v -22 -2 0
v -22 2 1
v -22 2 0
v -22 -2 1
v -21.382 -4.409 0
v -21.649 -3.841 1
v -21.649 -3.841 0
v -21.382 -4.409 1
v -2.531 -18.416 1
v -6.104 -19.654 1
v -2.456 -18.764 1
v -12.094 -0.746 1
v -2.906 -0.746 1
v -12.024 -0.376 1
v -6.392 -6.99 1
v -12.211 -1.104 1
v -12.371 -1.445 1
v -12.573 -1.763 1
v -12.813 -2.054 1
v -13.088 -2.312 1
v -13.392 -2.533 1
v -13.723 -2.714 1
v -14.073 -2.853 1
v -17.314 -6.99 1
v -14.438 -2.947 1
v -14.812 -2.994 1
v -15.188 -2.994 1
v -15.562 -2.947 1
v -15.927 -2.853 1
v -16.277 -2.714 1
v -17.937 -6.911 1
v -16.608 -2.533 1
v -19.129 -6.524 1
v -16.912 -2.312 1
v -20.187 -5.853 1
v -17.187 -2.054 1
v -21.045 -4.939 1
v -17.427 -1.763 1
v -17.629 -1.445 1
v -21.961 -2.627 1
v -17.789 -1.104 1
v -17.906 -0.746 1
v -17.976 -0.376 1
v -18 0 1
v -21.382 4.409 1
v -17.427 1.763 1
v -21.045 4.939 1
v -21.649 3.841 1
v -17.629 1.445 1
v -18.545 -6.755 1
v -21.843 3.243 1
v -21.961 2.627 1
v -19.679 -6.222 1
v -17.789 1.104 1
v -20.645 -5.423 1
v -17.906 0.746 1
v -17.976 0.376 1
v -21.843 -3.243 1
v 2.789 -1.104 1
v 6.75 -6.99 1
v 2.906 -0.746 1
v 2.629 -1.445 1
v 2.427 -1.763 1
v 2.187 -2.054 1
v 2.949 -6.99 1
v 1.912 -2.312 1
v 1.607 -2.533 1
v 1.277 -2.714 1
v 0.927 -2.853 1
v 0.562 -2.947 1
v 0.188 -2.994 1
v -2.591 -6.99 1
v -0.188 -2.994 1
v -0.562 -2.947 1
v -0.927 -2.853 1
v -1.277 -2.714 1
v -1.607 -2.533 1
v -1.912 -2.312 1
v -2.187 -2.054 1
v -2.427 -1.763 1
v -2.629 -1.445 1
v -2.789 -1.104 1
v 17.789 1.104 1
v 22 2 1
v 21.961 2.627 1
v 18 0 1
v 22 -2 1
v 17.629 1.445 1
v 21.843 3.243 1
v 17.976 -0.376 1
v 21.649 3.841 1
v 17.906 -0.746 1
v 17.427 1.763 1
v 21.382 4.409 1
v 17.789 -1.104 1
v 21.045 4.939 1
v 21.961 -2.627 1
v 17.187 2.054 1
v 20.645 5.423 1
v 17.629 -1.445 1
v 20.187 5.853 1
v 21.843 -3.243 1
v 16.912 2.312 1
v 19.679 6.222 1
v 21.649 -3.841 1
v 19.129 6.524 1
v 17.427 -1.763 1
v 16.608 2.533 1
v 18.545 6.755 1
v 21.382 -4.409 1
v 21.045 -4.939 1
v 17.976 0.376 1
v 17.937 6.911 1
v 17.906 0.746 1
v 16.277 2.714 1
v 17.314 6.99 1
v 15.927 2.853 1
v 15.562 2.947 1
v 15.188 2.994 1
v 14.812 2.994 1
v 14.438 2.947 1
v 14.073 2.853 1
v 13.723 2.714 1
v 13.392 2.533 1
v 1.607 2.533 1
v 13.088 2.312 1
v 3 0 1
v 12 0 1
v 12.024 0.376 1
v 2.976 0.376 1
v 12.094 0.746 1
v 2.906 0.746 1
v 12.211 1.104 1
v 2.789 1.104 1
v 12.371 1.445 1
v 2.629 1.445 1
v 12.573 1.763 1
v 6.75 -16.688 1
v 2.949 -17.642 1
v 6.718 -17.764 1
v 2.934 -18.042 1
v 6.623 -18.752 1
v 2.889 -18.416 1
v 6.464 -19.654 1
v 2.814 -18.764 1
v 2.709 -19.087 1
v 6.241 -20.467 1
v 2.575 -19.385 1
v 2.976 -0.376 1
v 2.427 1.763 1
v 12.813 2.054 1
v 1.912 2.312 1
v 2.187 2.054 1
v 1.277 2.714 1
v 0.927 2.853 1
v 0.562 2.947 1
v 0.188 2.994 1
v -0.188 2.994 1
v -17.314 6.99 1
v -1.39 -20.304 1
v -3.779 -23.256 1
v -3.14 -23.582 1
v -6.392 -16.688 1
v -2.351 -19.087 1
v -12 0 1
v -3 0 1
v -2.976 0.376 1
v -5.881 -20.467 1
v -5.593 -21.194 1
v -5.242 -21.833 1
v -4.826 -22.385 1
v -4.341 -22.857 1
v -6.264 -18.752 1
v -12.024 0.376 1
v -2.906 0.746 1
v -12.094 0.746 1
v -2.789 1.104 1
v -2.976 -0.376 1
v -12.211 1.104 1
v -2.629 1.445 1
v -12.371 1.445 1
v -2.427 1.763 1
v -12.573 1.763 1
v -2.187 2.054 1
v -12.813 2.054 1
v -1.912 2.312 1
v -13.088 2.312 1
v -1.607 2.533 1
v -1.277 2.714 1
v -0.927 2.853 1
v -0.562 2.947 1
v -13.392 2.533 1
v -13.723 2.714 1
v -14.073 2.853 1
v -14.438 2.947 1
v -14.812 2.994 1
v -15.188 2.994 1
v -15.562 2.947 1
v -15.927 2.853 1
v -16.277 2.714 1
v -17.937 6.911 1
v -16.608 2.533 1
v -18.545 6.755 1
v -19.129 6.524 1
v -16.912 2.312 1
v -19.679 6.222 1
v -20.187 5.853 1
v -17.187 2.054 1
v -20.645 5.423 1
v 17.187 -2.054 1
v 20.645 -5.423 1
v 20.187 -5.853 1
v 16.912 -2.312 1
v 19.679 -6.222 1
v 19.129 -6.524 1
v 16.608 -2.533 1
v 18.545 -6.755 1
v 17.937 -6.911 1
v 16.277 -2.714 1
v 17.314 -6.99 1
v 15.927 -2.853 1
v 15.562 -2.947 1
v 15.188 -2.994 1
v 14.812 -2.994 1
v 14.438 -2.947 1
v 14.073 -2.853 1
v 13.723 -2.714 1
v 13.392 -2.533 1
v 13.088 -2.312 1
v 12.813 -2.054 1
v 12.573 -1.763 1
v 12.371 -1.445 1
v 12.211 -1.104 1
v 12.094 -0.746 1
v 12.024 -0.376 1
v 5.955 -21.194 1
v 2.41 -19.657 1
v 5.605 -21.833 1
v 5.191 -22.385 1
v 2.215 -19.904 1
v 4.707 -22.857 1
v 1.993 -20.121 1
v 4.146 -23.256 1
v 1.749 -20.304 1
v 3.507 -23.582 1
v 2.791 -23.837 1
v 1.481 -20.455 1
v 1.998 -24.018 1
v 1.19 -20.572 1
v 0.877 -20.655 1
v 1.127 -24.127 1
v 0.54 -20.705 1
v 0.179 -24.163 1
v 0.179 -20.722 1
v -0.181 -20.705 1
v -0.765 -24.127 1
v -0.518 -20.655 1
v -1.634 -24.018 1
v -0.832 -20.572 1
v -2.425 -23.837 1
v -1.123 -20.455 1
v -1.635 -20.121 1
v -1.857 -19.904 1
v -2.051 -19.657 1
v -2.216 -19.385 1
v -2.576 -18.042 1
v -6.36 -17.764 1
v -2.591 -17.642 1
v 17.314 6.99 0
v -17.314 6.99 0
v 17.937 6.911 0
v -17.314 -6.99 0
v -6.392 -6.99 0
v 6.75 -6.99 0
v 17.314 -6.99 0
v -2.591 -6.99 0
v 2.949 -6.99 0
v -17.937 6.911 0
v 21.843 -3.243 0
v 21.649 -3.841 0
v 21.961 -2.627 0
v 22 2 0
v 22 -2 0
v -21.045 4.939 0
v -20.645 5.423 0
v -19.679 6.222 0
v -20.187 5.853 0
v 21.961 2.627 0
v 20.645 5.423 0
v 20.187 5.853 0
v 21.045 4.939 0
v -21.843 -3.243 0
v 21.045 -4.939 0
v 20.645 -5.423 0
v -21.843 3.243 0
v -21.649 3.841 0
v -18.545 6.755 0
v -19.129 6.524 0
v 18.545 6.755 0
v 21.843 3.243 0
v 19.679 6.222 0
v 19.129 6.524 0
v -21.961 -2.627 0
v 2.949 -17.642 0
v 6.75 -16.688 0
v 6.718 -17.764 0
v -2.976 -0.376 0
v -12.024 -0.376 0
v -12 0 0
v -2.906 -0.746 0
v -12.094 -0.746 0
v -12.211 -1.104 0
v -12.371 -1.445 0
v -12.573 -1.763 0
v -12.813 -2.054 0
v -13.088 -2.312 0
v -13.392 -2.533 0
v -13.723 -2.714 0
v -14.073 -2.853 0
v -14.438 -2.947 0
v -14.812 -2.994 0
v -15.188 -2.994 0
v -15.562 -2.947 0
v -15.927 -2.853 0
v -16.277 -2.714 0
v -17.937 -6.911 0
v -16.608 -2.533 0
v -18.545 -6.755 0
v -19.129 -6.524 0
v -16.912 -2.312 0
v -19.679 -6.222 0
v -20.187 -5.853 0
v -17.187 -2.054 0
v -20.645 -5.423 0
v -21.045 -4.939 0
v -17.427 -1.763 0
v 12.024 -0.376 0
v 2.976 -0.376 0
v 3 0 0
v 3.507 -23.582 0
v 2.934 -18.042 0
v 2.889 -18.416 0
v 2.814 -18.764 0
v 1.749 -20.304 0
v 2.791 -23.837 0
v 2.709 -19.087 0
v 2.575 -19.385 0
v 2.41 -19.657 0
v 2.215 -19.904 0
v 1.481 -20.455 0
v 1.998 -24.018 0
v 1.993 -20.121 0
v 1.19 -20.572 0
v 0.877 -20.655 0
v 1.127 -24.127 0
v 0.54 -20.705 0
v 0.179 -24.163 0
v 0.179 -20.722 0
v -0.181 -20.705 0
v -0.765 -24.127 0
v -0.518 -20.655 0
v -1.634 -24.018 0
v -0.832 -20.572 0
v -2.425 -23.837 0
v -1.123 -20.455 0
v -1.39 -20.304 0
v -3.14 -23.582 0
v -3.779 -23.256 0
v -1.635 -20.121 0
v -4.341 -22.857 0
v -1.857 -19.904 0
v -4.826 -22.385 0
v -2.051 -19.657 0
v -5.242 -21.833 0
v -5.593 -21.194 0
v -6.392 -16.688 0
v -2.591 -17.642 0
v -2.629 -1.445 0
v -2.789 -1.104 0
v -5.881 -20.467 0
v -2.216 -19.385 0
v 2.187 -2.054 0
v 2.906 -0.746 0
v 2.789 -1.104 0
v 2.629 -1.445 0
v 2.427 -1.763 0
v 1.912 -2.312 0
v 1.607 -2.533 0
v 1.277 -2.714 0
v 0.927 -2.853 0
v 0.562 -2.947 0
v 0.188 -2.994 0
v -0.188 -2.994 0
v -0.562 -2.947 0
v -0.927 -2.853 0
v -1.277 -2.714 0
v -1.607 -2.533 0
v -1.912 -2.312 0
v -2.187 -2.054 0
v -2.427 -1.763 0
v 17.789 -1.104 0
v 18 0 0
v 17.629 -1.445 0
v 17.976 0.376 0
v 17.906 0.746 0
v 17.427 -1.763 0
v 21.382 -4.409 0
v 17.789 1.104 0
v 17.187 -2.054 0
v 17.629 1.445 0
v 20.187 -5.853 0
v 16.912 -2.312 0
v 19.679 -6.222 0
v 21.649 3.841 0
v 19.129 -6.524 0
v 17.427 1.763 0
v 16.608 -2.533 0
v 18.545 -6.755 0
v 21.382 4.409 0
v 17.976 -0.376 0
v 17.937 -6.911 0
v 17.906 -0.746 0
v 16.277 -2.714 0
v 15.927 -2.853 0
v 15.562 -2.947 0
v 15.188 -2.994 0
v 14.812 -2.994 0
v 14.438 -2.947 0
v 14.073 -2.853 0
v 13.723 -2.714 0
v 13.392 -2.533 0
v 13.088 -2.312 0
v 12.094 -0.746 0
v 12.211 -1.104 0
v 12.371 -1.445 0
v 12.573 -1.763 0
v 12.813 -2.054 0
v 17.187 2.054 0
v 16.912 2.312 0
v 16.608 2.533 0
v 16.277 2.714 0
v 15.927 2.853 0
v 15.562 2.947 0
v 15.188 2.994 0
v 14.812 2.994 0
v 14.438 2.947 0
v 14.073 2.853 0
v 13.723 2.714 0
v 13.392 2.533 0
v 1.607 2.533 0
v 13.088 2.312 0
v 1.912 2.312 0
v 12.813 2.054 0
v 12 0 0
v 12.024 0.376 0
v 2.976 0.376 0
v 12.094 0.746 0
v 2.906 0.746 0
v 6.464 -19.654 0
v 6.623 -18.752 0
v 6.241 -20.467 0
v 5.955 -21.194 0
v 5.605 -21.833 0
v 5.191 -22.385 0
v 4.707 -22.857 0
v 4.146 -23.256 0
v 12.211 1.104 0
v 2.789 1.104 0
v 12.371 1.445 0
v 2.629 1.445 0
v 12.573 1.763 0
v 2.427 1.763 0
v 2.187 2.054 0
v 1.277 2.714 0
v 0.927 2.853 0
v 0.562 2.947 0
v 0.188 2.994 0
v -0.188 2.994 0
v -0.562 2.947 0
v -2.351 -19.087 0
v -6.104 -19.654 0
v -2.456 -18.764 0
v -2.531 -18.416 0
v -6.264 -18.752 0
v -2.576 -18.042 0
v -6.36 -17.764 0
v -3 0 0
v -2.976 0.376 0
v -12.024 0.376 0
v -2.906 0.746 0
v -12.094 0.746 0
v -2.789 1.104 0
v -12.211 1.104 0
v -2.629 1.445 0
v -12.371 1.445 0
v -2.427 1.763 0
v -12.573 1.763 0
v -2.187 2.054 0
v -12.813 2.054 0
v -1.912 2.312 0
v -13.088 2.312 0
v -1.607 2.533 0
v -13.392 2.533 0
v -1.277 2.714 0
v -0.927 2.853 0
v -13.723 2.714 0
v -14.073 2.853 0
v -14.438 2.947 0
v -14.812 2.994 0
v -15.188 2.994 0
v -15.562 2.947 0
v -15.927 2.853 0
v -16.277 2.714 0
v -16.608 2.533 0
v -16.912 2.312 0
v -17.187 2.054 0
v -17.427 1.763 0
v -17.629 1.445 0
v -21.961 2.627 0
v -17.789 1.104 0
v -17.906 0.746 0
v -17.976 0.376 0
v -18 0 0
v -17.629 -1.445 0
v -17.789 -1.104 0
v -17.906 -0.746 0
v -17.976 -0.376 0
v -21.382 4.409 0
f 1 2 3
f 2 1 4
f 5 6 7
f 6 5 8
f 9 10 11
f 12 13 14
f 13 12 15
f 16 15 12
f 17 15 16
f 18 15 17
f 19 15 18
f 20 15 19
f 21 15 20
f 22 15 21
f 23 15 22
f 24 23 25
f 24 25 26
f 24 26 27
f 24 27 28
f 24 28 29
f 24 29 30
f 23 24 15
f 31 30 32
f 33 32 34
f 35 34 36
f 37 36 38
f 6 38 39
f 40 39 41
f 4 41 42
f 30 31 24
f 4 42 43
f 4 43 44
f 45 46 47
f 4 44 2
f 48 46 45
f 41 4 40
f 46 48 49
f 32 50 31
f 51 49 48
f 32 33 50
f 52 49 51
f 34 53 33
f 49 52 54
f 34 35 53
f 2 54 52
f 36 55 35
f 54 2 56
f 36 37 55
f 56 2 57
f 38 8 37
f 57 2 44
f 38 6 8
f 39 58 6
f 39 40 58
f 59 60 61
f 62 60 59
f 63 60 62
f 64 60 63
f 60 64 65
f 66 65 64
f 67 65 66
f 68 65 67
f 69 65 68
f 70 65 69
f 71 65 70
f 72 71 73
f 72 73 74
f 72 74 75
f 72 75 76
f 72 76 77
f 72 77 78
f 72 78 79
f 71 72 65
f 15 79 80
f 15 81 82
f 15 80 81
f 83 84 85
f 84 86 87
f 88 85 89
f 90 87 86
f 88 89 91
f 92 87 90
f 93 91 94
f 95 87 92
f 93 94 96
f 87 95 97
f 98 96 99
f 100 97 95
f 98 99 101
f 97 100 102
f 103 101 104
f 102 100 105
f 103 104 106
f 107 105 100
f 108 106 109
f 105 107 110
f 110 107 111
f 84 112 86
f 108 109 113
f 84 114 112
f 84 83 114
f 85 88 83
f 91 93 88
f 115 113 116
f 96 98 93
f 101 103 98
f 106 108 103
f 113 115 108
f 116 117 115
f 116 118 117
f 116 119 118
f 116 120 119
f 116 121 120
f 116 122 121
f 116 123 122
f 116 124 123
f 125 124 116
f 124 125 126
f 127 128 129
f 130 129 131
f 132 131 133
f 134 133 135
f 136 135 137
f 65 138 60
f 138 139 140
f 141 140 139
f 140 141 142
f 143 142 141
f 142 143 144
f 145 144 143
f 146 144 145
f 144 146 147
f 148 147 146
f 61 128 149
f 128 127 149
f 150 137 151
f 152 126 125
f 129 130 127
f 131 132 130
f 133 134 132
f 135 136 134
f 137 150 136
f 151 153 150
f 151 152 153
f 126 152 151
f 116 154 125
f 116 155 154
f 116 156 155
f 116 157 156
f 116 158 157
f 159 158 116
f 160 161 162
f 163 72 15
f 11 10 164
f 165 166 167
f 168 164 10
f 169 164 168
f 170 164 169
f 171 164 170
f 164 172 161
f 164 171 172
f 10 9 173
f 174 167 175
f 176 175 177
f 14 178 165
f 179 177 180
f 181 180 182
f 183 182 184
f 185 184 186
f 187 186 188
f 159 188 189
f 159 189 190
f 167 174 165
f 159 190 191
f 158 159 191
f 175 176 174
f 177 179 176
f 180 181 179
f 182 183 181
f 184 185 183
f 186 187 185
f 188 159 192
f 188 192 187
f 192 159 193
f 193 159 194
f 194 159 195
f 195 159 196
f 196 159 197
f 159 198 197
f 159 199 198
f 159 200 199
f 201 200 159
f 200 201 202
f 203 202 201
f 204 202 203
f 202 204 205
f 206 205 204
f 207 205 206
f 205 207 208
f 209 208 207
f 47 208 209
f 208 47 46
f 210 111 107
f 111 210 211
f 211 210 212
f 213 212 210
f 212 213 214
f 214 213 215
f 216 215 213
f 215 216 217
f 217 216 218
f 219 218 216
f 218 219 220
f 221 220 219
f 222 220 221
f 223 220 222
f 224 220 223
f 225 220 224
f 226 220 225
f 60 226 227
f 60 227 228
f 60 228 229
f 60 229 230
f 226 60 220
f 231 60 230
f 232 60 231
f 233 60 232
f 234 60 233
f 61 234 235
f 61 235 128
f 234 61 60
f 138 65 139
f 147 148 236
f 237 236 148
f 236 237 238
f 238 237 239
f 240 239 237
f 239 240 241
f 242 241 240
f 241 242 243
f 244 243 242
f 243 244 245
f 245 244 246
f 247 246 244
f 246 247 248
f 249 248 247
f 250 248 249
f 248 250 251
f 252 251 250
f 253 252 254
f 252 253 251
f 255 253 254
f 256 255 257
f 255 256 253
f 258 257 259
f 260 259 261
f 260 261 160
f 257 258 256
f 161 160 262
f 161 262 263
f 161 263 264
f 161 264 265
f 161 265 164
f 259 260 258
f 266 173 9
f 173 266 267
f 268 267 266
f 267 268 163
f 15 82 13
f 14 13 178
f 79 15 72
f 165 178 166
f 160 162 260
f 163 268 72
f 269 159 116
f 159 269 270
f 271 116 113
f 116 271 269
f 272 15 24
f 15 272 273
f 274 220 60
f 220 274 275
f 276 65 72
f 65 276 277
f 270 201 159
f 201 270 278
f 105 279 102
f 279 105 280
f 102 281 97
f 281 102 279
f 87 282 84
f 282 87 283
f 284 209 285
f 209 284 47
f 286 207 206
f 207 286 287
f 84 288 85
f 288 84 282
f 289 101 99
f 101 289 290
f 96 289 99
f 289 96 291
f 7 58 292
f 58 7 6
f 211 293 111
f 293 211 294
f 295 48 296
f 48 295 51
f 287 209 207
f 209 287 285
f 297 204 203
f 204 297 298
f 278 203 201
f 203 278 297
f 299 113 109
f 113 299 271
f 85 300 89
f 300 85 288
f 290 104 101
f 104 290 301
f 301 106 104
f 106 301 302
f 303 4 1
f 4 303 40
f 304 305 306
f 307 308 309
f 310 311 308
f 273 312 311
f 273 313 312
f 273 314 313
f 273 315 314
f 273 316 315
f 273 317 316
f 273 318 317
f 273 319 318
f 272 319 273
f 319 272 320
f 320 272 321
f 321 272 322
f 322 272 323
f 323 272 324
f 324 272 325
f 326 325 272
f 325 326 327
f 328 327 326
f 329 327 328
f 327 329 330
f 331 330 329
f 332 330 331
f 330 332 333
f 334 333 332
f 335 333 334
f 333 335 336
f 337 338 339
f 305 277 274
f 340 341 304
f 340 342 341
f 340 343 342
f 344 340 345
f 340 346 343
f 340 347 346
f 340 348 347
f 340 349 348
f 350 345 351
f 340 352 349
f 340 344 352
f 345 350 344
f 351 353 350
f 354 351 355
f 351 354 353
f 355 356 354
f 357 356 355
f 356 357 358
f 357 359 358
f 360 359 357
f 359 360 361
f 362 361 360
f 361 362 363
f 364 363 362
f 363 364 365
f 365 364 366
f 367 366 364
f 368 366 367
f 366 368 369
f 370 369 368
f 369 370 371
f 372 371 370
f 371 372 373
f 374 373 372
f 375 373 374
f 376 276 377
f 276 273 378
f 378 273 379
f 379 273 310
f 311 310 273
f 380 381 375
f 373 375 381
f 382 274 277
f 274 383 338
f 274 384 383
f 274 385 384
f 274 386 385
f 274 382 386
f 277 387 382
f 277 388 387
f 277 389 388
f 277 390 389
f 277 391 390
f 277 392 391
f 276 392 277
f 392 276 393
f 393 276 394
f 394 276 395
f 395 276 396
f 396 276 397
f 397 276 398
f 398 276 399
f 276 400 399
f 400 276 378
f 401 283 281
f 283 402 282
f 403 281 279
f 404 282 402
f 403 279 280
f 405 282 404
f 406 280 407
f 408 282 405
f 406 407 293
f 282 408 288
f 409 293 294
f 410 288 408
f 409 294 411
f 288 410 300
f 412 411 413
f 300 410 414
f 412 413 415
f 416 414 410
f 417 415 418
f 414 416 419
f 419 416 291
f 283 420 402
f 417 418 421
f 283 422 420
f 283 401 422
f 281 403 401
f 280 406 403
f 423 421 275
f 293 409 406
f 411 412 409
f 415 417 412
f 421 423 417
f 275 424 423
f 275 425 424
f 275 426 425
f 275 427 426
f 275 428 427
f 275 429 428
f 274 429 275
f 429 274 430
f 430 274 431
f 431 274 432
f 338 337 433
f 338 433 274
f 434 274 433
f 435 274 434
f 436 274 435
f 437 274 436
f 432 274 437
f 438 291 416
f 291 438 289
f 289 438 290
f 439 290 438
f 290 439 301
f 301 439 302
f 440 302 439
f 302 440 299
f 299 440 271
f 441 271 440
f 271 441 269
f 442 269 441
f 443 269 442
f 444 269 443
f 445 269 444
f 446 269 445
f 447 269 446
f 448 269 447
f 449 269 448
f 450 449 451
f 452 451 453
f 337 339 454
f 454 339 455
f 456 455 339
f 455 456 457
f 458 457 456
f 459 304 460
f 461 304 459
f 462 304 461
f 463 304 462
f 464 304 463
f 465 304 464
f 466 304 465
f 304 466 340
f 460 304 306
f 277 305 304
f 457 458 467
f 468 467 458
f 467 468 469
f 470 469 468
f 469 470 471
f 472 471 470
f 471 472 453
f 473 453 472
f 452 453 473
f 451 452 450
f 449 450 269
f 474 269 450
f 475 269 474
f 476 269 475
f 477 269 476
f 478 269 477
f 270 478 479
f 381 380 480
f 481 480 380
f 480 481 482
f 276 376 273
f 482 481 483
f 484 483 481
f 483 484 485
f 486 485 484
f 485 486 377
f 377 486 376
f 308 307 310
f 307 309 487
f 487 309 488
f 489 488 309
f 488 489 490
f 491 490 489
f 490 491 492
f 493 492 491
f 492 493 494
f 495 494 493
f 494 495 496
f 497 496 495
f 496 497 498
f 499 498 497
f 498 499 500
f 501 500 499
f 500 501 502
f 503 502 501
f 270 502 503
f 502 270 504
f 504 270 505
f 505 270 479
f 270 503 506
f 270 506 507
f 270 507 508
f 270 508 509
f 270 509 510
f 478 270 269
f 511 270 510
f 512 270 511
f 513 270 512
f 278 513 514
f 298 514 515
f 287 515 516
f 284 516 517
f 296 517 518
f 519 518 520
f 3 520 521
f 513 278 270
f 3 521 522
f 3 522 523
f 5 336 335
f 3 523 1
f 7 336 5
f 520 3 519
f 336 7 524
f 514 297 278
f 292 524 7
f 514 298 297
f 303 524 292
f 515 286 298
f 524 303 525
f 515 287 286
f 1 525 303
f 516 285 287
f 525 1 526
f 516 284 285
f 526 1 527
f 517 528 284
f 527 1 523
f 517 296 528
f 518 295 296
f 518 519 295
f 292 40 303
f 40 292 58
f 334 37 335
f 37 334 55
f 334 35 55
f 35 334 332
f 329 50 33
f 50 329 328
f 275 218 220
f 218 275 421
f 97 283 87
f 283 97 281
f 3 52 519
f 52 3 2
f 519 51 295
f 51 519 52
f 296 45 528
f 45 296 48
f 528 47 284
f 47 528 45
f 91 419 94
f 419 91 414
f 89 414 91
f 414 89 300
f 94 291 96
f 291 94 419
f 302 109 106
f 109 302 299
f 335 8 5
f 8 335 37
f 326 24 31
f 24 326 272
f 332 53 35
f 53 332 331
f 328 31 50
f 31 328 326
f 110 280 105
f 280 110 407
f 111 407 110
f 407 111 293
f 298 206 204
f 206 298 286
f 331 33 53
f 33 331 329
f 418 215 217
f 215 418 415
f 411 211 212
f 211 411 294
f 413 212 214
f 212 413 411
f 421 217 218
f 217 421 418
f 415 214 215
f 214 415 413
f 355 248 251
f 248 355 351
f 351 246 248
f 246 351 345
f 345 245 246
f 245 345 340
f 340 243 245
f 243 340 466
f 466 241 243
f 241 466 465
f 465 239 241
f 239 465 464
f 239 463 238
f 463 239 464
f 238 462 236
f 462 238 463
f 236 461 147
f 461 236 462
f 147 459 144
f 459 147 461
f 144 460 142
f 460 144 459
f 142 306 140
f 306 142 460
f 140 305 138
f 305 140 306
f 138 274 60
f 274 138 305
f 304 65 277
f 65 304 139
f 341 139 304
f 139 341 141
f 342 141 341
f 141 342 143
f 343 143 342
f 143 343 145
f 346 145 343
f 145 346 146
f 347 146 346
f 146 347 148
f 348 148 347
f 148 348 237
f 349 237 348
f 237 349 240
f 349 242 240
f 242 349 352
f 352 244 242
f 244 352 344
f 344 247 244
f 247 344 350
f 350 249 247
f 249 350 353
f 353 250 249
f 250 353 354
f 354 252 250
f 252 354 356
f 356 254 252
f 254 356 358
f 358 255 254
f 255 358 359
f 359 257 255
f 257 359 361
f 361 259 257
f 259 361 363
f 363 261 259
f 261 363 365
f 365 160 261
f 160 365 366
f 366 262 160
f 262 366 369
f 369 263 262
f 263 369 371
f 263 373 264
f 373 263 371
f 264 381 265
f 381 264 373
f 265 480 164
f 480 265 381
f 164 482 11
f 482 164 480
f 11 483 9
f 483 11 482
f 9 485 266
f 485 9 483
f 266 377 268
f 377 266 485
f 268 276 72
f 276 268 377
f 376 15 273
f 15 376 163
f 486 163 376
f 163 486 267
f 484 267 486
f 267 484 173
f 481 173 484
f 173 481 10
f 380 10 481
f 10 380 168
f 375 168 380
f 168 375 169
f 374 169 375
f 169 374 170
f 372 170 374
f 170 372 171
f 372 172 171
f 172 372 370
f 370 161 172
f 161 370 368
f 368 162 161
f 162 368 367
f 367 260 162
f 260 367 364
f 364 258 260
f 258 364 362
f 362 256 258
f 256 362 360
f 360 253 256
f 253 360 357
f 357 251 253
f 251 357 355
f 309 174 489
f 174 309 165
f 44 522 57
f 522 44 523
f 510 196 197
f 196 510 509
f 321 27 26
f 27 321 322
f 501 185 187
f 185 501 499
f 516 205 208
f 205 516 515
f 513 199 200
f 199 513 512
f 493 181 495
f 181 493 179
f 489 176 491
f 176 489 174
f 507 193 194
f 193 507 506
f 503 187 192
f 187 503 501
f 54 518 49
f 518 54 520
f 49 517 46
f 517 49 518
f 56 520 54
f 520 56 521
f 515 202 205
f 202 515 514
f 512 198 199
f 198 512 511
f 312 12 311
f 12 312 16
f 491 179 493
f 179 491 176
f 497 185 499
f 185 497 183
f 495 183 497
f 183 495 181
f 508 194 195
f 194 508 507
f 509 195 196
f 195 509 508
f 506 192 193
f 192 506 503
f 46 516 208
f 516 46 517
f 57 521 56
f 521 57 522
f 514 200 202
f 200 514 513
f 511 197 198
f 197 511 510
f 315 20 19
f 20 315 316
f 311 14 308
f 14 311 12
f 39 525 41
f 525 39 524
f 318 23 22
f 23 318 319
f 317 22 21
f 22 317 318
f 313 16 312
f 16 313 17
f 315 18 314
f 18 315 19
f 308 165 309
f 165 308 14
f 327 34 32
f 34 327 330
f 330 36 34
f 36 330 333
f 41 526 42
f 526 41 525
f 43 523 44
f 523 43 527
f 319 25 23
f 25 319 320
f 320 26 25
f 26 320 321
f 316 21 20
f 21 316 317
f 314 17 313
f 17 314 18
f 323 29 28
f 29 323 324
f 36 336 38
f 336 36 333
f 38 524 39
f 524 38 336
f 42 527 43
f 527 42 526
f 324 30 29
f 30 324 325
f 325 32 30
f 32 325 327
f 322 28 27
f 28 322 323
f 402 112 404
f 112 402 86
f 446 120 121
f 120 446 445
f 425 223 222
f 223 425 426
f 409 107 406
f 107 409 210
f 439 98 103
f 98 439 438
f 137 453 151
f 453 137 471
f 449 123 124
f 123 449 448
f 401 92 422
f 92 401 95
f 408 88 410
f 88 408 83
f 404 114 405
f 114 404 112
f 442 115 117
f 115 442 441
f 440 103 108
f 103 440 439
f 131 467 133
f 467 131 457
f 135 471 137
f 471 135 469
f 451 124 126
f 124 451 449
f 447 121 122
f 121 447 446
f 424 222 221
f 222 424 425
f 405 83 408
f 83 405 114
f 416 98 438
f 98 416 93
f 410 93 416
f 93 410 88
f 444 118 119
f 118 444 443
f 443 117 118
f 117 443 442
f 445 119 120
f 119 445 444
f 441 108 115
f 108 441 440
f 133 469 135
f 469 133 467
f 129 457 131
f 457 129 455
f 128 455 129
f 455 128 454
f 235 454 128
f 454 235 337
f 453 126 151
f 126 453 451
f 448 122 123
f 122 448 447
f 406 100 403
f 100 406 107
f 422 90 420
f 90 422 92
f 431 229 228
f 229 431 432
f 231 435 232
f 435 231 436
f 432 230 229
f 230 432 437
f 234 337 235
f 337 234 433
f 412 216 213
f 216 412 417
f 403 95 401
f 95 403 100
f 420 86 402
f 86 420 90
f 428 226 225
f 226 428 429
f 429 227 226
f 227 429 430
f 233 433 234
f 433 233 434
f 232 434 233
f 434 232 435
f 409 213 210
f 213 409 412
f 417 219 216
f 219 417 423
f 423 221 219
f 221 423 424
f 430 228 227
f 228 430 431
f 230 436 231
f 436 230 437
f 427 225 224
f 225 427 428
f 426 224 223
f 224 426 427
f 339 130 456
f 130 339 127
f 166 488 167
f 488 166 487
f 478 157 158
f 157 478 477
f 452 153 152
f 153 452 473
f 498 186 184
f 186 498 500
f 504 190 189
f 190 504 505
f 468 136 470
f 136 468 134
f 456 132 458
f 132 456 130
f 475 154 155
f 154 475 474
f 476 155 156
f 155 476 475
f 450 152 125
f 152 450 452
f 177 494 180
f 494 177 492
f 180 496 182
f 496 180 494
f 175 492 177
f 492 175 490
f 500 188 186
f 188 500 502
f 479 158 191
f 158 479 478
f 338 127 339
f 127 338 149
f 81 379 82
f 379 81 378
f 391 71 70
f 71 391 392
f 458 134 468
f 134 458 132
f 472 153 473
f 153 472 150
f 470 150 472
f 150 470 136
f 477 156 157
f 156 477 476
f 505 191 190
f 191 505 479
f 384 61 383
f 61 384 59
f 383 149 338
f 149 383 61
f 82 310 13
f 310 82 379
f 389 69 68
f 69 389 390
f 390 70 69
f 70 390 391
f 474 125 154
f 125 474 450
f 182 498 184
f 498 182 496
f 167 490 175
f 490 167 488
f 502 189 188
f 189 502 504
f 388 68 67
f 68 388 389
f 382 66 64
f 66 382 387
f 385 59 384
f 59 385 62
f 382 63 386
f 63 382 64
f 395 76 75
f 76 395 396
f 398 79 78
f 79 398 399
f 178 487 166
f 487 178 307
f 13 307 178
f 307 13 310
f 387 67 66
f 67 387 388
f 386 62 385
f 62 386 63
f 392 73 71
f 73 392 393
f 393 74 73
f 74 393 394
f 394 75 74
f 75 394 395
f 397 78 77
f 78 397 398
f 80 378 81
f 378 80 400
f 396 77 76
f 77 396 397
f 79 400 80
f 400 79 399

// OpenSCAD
$fn = 50;


difference() {
	union() {
		translate(v = [0, 0, 0]) {
			rotate(a = [0, 0, 0]) {
				hull() {
					translate(v = [-17.0000000000, 2.0000000000, 0]) {
						rotate(a = [0, 0, 0]) {
							translate(v = [0, 0, 0]) {
								rotate(a = [0, 0, 0]) {
									cylinder(h = 1, r = 5);
								}
							}
						}
					}
					translate(v = [17.0000000000, 2.0000000000, 0]) {
						rotate(a = [0, 0, 0]) {
							translate(v = [0, 0, 0]) {
								rotate(a = [0, 0, 0]) {
									cylinder(h = 1, r = 5);
								}
							}
						}
					}
					translate(v = [-17.0000000000, -2.0000000000, 0]) {
						rotate(a = [0, 0, 0]) {
							translate(v = [0, 0, 0]) {
								rotate(a = [0, 0, 0]) {
									cylinder(h = 1, r = 5);
								}
							}
						}
					}
					translate(v = [17.0000000000, -2.0000000000, 0]) {
						rotate(a = [0, 0, 0]) {
							translate(v = [0, 0, 0]) {
								rotate(a = [0, 0, 0]) {
									cylinder(h = 1, r = 5);
								}
							}
						}
					}
				}
			}
		}
		translate(v = [0, -5, 0]) {
			rotate(a = [0, 0, 0]) {
				linear_extrude(height = 1) {
					text(font = "DejaVu Sans Mono:style=Bold", halign = "center", size = 19.0000000000, text = "U", valign = "top");
				}
			}
		}
	}
	union() {
		translate(v = [-15.0000000000, 0.0000000000, -125.0000000000]) {
			rotate(a = [0, 0, 0]) {
				cylinder(h = 250, r = 3.0000000000);
			}
		}
		translate(v = [15.0000000000, 0.0000000000, -125.0000000000]) {
			rotate(a = [0, 0, 0]) {
				cylinder(h = 250, r = 3.0000000000);
			}
		}
		translate(v = [15.0000000000, 0.0000000000, -125.0000000000]) {
			rotate(a = [0, 0, 0]) {
				cylinder(h = 250, r = 3.0000000000);
			}
		}
		translate(v = [0, 0, -125.0000000000]) {
			rotate(a = [0, 0, 0]) {
				cylinder(h = 250, r = 3.0000000000);
			}
		}
	}
}
